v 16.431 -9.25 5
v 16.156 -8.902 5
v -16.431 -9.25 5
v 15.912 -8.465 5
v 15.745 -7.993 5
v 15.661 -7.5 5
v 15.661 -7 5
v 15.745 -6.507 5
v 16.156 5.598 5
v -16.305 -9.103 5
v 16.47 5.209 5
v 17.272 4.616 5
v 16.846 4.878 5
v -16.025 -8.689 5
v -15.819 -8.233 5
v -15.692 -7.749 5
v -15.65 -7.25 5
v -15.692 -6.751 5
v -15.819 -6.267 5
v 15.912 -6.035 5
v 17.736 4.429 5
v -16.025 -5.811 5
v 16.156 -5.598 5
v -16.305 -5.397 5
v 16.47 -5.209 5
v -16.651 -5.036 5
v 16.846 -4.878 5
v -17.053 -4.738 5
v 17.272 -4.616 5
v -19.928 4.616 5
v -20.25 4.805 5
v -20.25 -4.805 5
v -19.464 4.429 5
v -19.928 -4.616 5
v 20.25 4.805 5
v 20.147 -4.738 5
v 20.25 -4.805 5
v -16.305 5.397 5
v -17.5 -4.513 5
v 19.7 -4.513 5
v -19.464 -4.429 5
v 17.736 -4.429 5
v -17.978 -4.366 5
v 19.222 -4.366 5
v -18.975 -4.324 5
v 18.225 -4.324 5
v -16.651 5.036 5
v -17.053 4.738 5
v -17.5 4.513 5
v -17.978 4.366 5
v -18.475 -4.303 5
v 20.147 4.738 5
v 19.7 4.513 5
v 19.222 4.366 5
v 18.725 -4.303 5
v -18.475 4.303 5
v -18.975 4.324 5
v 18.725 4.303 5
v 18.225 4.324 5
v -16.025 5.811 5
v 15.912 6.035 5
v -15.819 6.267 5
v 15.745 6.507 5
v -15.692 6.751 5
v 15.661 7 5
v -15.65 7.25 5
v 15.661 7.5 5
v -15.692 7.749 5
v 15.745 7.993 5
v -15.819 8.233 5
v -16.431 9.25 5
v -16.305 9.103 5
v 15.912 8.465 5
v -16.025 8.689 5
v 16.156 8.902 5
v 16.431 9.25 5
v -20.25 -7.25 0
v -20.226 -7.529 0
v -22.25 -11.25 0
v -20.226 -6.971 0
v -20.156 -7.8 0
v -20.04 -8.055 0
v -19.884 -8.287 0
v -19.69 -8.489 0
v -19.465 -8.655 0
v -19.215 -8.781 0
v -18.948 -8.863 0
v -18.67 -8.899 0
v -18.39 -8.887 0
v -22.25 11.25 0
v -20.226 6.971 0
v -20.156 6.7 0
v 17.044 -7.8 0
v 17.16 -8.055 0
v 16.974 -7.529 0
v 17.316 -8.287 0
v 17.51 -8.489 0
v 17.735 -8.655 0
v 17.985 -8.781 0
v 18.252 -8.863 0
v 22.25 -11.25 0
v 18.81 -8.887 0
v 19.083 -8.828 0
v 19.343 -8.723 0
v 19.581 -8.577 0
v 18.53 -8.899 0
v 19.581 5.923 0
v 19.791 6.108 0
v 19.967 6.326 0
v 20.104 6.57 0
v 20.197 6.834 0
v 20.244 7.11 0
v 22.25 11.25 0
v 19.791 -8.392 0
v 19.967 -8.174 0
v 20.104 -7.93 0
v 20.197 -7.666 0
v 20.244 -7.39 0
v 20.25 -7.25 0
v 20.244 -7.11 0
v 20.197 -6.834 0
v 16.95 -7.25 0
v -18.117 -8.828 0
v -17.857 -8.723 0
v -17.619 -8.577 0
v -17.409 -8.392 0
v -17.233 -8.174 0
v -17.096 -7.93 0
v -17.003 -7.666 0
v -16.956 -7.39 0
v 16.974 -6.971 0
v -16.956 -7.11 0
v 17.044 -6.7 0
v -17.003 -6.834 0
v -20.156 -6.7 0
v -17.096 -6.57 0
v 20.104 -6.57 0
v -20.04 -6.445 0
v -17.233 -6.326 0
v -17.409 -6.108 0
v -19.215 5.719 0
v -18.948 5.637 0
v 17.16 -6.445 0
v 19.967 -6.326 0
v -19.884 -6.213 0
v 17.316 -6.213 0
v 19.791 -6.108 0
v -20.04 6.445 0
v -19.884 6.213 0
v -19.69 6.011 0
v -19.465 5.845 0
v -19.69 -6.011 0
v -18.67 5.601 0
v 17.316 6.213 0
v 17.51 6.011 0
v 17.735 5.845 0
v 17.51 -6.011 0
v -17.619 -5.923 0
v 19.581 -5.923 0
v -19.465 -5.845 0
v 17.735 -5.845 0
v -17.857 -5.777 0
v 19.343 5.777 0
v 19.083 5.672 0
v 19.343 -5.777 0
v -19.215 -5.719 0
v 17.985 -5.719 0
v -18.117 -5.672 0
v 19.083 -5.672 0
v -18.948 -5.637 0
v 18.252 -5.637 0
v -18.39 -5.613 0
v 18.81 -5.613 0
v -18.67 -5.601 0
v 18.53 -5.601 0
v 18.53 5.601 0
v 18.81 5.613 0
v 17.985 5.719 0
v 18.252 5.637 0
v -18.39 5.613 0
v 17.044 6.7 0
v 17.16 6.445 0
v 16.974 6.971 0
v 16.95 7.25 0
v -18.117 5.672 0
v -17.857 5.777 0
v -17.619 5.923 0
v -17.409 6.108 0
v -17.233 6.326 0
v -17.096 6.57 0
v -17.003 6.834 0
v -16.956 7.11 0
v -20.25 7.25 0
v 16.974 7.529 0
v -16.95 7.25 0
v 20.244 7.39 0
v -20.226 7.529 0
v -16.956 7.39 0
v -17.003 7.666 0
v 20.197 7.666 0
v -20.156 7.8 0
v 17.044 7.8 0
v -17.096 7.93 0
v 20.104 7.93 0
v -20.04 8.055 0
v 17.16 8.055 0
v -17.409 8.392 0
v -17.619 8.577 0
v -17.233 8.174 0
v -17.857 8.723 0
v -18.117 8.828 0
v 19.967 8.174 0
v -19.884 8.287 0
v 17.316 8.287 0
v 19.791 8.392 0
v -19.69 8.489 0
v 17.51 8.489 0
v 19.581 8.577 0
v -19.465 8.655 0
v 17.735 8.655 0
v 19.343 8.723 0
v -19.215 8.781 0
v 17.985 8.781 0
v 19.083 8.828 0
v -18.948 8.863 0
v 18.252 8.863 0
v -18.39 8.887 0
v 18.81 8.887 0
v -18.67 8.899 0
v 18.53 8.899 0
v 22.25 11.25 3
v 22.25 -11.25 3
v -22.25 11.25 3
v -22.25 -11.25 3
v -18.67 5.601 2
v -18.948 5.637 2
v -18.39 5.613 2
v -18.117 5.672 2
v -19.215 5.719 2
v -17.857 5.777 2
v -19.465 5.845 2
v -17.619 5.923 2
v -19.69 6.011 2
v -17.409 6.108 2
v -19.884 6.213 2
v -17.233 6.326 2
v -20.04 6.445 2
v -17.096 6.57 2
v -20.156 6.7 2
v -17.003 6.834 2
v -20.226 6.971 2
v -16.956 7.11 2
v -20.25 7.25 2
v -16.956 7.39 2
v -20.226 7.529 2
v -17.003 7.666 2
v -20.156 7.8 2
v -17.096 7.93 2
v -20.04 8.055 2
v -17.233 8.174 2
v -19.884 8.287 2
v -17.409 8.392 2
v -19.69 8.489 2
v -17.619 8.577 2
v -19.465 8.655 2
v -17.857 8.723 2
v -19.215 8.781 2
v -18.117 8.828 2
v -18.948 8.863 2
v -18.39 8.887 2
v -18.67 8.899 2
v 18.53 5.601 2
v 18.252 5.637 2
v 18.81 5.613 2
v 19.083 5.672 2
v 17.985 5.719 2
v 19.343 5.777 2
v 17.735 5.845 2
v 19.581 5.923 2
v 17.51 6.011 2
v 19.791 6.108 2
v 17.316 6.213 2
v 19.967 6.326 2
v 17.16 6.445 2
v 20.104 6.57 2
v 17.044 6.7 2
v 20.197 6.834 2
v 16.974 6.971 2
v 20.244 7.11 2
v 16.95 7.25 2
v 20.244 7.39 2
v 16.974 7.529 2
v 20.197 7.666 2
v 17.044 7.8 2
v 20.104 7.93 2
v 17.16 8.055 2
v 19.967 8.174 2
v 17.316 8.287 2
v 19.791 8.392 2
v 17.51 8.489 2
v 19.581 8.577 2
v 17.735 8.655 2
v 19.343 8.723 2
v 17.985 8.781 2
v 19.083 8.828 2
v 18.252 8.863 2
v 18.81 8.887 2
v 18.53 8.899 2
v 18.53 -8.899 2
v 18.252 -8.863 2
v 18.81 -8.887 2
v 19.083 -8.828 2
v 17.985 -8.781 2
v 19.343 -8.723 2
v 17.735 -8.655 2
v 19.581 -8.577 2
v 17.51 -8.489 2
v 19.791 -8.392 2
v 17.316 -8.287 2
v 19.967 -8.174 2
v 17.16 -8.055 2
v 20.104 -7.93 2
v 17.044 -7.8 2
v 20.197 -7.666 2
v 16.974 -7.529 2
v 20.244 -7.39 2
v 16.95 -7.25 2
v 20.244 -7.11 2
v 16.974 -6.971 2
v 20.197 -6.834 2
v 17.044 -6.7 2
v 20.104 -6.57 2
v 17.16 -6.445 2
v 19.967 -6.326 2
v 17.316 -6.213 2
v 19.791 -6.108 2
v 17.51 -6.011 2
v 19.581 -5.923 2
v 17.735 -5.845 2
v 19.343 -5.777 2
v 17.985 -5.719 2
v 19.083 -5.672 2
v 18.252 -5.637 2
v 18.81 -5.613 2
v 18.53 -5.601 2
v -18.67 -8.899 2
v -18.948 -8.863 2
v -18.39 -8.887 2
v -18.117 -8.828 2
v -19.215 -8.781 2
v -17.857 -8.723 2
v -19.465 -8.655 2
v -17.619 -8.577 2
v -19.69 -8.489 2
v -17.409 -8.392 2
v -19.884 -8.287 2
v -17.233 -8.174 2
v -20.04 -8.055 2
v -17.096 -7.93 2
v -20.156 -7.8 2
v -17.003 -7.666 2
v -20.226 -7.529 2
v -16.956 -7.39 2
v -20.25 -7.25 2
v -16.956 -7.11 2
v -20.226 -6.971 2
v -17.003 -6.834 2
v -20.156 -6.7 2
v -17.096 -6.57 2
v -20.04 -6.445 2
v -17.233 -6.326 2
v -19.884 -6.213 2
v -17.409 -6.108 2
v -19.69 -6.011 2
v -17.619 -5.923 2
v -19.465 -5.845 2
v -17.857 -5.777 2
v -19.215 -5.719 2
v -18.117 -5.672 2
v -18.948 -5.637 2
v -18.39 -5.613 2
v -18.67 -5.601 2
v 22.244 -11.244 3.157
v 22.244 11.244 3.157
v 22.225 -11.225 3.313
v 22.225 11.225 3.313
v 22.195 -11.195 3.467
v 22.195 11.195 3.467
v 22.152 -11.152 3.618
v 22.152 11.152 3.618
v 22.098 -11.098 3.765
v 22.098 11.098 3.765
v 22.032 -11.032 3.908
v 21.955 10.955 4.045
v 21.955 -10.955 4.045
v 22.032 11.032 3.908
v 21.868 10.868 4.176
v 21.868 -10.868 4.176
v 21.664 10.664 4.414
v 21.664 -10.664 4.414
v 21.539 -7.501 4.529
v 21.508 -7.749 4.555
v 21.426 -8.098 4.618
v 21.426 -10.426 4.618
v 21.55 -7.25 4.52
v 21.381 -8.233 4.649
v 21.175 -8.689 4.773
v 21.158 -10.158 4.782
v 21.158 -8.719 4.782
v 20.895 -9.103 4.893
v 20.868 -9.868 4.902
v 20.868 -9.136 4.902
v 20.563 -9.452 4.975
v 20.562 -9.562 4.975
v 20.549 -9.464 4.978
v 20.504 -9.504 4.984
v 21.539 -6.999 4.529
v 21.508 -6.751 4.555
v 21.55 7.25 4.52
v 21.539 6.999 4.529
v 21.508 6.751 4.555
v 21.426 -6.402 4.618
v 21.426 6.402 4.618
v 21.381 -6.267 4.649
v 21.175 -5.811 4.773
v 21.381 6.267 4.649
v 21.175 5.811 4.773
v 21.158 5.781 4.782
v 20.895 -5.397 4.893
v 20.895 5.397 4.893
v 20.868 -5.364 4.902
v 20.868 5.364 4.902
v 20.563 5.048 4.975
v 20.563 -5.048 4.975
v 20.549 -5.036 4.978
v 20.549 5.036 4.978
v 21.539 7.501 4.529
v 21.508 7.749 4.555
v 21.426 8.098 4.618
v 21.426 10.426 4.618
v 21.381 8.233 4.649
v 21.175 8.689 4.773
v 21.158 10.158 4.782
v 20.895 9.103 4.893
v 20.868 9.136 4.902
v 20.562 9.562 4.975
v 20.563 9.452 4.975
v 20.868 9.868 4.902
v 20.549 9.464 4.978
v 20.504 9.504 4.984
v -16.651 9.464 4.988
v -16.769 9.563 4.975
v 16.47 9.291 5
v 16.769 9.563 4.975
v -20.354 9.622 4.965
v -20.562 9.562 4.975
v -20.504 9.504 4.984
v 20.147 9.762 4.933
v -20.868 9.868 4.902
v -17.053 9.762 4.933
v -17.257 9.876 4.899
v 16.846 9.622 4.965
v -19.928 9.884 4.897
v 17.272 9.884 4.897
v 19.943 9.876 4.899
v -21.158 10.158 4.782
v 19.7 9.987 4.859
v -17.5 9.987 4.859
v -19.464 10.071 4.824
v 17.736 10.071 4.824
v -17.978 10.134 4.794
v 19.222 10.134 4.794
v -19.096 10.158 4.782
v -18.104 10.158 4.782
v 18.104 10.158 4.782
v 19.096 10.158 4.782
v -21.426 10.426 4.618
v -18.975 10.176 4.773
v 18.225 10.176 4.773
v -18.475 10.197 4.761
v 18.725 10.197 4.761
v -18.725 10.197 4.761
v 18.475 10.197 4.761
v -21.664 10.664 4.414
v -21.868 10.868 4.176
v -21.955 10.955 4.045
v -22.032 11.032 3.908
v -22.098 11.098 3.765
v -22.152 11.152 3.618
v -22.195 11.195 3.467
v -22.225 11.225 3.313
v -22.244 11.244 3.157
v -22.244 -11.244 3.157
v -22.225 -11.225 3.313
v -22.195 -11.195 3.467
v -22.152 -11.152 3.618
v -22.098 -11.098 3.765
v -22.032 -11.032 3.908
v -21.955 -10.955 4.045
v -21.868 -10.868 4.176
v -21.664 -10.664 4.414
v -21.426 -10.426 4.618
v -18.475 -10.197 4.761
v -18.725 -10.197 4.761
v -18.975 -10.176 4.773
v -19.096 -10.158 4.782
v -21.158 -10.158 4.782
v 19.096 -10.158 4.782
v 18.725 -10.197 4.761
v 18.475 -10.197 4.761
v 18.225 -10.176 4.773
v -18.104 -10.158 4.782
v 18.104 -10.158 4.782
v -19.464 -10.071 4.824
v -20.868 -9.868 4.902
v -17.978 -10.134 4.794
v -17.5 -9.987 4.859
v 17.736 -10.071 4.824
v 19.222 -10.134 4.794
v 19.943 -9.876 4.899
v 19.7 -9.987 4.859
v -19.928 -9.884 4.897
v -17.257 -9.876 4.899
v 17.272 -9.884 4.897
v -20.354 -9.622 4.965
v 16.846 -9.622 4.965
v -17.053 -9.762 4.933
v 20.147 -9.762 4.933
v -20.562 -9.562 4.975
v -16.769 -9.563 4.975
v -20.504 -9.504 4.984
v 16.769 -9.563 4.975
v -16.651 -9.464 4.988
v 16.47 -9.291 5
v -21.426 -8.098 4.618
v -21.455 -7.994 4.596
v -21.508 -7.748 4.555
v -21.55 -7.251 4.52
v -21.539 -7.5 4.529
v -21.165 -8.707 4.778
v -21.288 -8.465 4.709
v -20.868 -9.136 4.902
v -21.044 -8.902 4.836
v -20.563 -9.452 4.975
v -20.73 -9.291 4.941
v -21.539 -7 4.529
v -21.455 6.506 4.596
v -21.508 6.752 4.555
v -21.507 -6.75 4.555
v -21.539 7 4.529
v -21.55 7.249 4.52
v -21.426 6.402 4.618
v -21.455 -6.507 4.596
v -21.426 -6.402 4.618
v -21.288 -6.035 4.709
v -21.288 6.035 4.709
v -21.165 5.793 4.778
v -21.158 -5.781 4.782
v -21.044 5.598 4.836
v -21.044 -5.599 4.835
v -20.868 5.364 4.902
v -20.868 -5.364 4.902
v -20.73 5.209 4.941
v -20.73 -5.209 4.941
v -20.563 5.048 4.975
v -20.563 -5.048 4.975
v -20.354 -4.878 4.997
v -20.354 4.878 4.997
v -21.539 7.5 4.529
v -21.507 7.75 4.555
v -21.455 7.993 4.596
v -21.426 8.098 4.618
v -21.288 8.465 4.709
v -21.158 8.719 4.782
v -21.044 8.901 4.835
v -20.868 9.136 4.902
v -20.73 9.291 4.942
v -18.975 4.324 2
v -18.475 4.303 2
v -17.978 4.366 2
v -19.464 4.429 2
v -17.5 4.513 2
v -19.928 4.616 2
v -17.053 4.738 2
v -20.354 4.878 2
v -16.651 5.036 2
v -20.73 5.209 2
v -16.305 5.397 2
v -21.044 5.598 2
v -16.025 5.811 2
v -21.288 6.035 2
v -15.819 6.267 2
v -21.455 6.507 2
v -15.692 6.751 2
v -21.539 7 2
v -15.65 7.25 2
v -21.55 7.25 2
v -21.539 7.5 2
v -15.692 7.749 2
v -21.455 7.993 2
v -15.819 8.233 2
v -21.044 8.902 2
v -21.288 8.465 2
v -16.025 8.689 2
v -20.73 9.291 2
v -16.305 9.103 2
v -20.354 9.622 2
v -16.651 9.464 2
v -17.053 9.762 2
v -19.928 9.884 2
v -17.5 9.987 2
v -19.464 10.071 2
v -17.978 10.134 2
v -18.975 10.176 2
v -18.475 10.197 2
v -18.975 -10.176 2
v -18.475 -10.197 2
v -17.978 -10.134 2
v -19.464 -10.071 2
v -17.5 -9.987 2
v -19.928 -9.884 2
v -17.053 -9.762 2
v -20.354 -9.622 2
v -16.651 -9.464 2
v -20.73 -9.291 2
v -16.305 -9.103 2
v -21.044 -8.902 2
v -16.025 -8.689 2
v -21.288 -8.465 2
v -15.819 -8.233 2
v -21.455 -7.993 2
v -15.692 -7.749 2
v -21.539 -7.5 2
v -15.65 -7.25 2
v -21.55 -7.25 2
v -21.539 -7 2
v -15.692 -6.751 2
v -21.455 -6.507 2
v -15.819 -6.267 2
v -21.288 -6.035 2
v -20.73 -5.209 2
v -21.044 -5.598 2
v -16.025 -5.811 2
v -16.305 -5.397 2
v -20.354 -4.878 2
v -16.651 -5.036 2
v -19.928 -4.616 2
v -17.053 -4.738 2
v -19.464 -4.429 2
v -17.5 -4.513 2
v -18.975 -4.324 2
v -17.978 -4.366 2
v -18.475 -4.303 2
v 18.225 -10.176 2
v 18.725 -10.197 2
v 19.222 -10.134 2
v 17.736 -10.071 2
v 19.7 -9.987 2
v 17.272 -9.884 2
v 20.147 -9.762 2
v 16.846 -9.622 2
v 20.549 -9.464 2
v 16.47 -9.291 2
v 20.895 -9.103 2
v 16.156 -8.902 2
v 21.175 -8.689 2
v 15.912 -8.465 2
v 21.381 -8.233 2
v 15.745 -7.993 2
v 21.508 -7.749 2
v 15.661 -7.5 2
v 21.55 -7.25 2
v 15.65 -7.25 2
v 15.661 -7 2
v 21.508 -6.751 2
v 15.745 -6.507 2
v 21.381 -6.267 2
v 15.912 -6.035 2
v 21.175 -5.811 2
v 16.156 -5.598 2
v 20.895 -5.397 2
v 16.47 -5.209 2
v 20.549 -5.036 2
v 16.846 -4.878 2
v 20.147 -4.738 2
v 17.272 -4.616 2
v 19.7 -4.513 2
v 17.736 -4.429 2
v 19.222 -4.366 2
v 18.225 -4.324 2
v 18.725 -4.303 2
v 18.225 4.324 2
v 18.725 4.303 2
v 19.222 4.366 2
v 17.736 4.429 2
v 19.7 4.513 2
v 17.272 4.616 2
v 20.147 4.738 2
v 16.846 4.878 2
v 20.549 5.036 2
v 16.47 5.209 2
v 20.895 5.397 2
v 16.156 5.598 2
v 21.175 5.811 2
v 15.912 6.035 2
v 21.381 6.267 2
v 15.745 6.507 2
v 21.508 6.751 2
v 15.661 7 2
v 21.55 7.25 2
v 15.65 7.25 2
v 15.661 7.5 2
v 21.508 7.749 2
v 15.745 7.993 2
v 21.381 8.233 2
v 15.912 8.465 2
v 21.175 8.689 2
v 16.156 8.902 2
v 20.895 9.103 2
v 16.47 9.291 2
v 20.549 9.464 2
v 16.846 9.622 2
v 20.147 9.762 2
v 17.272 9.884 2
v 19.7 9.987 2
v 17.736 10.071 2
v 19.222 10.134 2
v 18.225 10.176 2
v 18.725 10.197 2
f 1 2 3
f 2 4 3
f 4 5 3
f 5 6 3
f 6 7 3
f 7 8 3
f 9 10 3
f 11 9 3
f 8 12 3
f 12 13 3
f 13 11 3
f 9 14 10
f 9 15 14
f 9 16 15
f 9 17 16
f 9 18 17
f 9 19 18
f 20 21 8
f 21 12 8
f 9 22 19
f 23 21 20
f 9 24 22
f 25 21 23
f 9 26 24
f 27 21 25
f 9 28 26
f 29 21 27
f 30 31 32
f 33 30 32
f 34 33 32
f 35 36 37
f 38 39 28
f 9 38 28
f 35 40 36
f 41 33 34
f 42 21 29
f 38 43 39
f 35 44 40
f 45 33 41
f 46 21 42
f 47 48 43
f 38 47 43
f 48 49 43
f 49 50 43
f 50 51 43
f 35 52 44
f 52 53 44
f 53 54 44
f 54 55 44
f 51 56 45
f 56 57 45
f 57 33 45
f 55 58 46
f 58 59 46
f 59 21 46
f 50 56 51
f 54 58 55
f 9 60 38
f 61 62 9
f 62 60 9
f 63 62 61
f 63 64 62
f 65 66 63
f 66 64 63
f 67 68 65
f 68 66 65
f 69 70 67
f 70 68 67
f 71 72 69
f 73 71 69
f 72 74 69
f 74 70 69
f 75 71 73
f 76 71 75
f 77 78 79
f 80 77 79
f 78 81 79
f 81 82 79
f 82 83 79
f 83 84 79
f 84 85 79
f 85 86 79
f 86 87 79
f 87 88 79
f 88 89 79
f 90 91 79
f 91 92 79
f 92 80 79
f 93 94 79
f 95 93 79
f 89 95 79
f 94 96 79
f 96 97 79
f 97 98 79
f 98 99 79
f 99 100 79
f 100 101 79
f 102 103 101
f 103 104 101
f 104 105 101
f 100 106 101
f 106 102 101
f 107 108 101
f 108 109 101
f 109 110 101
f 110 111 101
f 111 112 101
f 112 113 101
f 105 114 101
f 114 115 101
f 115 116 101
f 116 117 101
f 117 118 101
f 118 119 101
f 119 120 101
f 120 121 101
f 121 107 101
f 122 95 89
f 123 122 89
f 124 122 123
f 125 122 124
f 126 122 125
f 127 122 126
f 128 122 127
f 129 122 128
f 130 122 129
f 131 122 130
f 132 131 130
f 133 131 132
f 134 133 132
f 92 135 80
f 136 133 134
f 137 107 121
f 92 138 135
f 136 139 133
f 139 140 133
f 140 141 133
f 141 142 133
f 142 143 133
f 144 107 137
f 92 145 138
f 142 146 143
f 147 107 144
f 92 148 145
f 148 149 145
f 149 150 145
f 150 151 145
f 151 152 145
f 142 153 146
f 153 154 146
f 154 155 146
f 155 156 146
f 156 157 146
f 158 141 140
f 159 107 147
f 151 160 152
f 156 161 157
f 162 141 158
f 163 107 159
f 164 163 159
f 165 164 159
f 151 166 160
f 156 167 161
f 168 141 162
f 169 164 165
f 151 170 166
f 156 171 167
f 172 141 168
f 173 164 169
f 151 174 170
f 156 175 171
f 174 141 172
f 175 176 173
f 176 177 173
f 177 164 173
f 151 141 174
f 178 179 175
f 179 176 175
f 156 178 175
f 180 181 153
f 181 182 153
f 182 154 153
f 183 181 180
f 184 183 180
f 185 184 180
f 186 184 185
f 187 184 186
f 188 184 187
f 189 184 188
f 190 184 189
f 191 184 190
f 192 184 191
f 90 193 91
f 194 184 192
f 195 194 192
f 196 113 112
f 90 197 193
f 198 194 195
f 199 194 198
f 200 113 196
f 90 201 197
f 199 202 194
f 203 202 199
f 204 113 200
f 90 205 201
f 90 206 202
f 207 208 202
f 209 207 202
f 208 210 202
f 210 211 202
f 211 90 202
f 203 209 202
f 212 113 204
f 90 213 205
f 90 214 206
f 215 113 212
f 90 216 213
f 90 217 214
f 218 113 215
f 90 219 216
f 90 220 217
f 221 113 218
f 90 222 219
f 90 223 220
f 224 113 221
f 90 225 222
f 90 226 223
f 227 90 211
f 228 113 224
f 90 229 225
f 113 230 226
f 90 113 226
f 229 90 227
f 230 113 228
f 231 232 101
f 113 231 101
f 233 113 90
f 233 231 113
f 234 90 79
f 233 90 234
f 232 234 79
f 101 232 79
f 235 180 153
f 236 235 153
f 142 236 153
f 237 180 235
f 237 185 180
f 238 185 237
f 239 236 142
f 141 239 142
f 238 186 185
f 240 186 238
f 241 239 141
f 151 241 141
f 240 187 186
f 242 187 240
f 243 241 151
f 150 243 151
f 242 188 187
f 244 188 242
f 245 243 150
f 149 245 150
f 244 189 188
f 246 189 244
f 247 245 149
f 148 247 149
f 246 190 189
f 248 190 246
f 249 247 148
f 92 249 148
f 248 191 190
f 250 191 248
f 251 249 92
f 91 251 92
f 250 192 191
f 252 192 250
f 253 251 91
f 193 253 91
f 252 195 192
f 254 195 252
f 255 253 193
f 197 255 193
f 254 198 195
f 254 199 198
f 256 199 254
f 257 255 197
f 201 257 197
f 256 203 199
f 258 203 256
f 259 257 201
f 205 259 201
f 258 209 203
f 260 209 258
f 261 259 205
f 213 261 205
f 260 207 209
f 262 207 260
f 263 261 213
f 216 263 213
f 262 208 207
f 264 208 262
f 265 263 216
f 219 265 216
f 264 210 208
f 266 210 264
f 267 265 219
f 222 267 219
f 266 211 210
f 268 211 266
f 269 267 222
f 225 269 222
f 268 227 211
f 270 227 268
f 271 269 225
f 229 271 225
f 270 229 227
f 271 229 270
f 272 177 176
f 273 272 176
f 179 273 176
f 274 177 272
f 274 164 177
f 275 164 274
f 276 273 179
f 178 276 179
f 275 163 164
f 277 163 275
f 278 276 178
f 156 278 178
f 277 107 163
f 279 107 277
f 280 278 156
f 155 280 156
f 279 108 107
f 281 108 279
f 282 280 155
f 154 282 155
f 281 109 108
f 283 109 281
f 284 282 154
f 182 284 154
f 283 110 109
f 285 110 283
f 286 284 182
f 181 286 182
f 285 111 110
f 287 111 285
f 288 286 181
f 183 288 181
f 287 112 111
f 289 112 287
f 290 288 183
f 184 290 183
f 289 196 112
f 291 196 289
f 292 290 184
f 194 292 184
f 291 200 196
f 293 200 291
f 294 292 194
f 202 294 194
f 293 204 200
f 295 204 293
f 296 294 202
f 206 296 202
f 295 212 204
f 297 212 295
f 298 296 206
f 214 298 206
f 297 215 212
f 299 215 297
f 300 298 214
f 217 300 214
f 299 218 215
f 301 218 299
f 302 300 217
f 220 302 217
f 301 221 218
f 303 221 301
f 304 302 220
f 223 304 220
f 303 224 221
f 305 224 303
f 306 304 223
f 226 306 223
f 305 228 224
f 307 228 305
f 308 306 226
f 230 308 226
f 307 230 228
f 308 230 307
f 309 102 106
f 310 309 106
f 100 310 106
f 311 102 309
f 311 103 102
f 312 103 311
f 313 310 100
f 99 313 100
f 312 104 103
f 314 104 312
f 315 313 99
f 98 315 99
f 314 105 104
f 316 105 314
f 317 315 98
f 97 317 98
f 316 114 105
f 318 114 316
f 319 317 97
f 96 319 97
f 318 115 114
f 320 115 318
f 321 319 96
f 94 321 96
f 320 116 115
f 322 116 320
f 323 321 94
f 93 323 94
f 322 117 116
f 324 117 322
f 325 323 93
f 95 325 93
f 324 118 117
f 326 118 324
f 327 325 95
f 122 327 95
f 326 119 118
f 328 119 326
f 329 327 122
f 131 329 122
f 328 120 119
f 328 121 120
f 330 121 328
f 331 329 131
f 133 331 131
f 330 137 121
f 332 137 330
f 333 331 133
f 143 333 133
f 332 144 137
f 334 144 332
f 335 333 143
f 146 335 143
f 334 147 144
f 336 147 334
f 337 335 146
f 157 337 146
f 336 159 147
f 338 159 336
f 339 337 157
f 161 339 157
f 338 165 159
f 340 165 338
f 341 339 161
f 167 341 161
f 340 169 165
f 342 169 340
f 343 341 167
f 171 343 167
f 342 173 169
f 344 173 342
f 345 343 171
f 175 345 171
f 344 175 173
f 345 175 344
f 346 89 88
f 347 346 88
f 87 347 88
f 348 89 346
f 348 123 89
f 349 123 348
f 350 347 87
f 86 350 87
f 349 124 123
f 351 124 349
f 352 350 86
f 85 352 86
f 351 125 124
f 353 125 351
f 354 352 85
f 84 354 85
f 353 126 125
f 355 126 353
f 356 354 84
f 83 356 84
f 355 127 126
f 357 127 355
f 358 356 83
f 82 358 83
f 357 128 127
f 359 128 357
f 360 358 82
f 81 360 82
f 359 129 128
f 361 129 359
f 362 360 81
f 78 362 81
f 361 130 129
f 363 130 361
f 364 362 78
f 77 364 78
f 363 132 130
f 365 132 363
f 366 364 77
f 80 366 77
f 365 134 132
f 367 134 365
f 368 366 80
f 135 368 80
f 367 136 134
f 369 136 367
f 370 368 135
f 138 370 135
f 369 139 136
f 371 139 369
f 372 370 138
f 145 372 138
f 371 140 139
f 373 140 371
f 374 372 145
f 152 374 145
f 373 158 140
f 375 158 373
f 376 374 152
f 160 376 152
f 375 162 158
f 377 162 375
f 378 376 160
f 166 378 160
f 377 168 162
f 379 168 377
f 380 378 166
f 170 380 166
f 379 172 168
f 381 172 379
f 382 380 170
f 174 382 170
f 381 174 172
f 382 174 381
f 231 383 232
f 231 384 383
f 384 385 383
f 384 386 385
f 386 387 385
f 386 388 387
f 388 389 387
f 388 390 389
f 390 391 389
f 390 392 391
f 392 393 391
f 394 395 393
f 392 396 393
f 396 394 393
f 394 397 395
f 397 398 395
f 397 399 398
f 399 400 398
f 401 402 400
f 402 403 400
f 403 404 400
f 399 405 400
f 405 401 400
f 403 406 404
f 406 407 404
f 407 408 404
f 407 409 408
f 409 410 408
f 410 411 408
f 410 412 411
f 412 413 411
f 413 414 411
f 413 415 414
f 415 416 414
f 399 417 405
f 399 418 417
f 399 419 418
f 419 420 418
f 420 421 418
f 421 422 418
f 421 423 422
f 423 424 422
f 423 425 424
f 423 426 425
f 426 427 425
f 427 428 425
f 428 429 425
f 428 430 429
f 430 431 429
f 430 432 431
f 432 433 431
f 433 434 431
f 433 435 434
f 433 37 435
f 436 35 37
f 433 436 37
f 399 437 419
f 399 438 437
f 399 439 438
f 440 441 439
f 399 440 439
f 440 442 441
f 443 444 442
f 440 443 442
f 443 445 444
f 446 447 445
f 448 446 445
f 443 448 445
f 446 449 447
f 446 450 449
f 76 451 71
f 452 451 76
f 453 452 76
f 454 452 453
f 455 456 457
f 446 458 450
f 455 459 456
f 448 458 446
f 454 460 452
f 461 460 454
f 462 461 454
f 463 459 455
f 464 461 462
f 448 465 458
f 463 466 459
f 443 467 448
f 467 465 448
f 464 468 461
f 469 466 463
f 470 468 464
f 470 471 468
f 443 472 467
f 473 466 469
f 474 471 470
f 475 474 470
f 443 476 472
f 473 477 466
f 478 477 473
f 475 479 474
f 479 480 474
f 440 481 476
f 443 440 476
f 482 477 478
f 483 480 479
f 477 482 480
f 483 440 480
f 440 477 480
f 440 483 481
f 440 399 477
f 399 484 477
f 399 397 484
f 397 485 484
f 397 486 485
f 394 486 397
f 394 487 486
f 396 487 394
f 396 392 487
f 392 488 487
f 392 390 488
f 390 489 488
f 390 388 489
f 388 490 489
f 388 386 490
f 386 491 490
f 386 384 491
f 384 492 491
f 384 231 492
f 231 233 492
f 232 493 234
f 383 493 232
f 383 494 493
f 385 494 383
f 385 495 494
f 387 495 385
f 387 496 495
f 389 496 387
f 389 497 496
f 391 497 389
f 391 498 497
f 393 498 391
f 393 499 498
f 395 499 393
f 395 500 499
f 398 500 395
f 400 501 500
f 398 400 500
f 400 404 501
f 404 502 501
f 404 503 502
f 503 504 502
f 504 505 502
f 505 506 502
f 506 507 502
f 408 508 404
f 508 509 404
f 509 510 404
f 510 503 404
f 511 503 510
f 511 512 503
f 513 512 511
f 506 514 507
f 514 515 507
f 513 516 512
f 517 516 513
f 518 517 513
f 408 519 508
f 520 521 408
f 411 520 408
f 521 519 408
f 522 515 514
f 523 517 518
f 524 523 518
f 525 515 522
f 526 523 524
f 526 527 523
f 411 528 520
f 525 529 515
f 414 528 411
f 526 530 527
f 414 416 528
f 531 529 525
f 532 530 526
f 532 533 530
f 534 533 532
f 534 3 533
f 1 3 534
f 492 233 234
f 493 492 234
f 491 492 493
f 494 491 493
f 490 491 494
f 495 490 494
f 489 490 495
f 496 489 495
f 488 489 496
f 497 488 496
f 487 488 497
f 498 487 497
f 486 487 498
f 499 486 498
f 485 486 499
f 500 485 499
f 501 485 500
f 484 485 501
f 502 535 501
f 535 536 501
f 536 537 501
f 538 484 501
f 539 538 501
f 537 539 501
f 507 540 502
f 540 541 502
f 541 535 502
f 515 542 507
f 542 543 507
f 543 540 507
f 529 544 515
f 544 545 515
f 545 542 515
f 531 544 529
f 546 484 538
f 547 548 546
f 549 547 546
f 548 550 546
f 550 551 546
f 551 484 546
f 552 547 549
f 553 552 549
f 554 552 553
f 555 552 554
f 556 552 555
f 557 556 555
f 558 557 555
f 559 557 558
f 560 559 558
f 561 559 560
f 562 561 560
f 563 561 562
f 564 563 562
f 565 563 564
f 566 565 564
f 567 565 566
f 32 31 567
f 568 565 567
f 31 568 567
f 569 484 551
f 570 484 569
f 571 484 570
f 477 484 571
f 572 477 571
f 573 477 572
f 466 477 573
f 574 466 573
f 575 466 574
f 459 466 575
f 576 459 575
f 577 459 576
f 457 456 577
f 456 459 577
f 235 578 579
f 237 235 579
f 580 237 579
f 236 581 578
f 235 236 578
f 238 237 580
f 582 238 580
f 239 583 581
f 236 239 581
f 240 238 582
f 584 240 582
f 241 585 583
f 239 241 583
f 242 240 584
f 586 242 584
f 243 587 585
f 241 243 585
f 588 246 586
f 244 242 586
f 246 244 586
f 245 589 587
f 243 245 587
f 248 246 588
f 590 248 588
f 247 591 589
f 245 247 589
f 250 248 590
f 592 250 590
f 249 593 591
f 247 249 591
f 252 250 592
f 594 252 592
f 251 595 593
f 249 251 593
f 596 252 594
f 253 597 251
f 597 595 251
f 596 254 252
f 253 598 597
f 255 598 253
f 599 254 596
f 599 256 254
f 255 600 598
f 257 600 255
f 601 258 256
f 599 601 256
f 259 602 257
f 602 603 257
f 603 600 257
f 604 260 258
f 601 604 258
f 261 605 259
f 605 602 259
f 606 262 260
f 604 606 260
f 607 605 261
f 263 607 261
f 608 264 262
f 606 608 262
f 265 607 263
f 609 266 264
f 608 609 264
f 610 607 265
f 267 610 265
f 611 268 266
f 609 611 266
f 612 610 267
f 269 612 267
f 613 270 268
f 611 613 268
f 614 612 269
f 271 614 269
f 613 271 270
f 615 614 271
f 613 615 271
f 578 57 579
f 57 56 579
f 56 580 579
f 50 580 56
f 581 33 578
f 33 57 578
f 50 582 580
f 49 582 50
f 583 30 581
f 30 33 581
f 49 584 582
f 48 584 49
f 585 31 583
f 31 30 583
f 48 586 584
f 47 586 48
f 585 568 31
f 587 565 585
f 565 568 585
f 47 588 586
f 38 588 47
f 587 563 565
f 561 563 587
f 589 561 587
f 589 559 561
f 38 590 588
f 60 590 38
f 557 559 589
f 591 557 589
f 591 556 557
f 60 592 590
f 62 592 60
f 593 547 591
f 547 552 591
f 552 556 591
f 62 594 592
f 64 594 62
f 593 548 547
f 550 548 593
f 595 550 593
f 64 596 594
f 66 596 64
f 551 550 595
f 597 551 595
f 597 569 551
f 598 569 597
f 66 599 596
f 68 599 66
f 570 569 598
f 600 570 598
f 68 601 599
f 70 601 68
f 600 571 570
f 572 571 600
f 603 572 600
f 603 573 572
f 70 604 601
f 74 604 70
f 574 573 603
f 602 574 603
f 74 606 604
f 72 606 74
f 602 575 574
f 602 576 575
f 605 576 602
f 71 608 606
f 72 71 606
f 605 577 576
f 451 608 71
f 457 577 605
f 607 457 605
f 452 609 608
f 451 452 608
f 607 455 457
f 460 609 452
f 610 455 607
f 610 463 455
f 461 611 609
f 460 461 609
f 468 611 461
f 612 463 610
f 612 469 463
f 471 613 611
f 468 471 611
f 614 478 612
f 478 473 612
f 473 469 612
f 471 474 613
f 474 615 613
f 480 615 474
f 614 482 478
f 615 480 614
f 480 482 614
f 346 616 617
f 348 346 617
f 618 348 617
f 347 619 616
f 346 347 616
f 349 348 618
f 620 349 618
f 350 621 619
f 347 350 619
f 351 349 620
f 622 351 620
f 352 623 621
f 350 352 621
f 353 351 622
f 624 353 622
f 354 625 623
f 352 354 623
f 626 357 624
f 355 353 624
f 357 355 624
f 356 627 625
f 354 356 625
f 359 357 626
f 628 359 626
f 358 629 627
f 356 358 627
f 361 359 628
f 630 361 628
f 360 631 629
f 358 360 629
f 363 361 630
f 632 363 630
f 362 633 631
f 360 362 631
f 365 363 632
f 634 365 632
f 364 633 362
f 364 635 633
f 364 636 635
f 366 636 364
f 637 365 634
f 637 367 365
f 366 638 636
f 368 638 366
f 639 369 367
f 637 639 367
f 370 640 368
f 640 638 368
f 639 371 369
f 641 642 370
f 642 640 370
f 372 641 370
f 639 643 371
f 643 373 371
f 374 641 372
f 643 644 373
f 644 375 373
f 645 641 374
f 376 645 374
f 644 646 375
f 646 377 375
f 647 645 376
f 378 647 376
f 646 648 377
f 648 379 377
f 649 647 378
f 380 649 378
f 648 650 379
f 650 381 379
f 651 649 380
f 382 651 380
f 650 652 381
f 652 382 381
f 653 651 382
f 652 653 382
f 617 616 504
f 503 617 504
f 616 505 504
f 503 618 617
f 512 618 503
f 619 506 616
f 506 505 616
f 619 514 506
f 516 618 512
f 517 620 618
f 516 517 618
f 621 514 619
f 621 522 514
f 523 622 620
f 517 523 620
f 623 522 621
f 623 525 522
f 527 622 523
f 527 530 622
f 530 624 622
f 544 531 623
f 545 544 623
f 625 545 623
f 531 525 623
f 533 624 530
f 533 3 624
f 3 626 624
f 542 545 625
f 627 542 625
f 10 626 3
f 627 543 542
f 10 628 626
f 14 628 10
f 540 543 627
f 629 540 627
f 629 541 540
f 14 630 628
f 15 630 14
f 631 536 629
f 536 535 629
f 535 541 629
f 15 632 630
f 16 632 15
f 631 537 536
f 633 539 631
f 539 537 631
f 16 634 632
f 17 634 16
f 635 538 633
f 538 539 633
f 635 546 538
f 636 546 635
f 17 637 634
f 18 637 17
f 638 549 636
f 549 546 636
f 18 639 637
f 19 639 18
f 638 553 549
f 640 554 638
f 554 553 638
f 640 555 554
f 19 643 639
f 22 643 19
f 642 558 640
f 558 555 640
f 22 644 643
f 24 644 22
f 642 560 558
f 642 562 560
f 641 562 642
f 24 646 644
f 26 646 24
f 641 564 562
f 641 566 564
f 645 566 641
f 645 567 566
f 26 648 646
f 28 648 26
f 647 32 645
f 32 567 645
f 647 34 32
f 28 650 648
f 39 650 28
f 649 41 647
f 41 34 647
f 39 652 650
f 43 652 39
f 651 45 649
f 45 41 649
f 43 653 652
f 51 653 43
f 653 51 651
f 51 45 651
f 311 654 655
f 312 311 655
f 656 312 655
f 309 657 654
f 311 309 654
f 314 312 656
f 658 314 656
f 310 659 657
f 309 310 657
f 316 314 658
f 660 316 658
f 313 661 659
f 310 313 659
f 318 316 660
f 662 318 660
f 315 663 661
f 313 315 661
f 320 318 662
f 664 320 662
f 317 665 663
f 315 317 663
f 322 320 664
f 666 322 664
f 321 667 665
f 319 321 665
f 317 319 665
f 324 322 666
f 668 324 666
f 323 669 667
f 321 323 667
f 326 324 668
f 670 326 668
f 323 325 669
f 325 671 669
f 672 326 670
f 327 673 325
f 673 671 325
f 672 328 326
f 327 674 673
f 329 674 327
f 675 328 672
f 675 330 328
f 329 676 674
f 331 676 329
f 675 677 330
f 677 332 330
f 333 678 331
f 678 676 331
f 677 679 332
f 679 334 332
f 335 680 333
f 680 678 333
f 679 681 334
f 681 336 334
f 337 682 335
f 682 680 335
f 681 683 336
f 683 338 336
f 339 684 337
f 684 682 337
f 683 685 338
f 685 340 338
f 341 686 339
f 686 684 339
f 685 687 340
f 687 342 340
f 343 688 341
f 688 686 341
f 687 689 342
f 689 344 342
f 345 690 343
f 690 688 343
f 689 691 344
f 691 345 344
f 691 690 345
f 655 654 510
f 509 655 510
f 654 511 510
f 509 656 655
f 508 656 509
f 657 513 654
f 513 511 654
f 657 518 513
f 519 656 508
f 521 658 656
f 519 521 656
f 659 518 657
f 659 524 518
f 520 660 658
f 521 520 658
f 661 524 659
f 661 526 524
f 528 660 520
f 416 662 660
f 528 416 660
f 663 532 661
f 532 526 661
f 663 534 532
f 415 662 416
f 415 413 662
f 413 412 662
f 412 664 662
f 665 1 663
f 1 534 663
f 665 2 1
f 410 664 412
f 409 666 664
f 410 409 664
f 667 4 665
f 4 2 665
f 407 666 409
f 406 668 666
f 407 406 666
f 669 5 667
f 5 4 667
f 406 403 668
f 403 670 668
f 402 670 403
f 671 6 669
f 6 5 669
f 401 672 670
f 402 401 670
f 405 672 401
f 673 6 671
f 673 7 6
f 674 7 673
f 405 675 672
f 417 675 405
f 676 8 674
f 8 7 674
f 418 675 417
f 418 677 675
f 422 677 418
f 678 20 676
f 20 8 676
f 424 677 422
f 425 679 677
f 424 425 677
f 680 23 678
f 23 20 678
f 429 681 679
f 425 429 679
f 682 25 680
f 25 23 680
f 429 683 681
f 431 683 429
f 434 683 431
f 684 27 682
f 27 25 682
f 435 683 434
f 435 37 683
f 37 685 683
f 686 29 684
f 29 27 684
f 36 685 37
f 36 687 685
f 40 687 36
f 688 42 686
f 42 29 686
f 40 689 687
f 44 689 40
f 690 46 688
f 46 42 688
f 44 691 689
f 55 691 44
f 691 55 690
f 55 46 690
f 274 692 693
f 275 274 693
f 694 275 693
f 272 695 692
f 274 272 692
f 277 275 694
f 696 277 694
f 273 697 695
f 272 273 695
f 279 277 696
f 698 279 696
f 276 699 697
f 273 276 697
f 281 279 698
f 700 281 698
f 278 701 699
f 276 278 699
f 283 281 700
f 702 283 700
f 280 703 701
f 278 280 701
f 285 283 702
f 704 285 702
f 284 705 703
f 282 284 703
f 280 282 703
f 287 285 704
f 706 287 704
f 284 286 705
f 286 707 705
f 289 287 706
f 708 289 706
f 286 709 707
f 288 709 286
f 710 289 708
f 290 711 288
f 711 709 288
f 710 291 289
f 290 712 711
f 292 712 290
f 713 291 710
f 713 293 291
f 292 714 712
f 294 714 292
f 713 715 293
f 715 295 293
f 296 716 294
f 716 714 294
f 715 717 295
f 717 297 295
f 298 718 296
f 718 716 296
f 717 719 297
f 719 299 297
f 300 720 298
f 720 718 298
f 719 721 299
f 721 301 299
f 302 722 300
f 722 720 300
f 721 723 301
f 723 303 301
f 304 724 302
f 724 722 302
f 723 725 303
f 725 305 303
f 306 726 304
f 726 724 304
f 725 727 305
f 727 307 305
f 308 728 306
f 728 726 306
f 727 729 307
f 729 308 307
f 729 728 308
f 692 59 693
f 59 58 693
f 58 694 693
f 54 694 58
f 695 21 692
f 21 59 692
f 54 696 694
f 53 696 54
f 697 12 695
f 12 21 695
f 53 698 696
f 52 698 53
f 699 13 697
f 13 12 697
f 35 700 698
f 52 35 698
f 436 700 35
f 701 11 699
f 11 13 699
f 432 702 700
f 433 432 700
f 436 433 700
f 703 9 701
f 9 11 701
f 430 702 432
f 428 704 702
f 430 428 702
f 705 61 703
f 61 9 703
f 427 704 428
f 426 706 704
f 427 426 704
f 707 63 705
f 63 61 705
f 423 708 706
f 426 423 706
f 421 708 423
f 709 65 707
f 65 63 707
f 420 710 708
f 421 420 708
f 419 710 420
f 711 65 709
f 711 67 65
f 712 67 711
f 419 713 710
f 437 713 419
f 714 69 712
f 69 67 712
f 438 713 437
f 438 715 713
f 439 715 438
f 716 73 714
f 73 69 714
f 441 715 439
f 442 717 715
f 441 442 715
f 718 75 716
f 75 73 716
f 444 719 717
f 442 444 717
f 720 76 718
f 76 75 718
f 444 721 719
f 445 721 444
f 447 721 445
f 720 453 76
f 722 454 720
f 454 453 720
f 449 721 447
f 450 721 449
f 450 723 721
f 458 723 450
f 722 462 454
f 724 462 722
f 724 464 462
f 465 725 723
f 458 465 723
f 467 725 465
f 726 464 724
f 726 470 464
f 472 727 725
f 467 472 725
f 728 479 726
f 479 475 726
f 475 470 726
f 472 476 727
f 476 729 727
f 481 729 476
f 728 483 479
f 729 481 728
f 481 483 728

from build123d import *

# Parameters (mm, degrees)
SKIZZE1_W                       = 44.5
SKIZZE1_H                       = 22.5
SKIZZE1_R                       = 1.65
AUFSATZ_LINEAR_AUSTRAGEN1_DEPTH = 5
VERRUNDUNG1_R                   = 2
SKIZZE2_R                       = 2.95
SCHNITT_LINEAR_AUSTRAGEN1_DEPTH = 3


with BuildPart() as part:
    # Skizze1 → Aufsatz-Linear austragen1 (new body)
    with BuildSketch(Plane.XY):
        Rectangle(SKIZZE1_W, SKIZZE1_H)
        with Locations((-18.6, 7.25)):
            Circle(SKIZZE1_R, mode=Mode.SUBTRACT)
        with Locations(Location((18.6, 7.25, 0), (0, 0, 180))):
            Circle(SKIZZE1_R, mode=Mode.SUBTRACT)
        with Locations((18.6, -7.25)):
            Circle(SKIZZE1_R, mode=Mode.SUBTRACT)
        with Locations(Location((-18.6, -7.25, 0), (0, 0, 180))):
            Circle(SKIZZE1_R, mode=Mode.SUBTRACT)
    extrude(amount=AUFSATZ_LINEAR_AUSTRAGEN1_DEPTH)

    # Verrundung1
    verrundung1_edges = [part.edges().sort_by_distance(p)[0] for p in [
        (-22.25, 0, 5),
        (0, -11.25, 5),
        (22.25, 0, 5),
        (0, 11.25, 5),
    ]]
    fillet(verrundung1_edges, radius=VERRUNDUNG1_R - 0.0001)  # a hair under: the kernel refuses the full size

    # Skizze2 → Schnitt-Linear austragen1 (cut)
    with BuildSketch(Plane.XY.offset(5)):
        with Locations(Location((-18.6, 7.25, 0), (0, 0, 42.684910775))):
            Circle(SKIZZE2_R)
        with Locations(Location((-18.6, -7.25, 0), (0, 0, 317.315089225))):
            Circle(SKIZZE2_R)
        with Locations(Location((18.6, -7.25, 0), (0, 0, 310.187569286))):
            Circle(SKIZZE2_R)
        with Locations(Location((18.6, 7.25, 0), (0, 0, 49.812430991))):
            Circle(SKIZZE2_R)
    extrude(amount=-SCHNITT_LINEAR_AUSTRAGEN1_DEPTH, mode=Mode.SUBTRACT)


solid = part.part
